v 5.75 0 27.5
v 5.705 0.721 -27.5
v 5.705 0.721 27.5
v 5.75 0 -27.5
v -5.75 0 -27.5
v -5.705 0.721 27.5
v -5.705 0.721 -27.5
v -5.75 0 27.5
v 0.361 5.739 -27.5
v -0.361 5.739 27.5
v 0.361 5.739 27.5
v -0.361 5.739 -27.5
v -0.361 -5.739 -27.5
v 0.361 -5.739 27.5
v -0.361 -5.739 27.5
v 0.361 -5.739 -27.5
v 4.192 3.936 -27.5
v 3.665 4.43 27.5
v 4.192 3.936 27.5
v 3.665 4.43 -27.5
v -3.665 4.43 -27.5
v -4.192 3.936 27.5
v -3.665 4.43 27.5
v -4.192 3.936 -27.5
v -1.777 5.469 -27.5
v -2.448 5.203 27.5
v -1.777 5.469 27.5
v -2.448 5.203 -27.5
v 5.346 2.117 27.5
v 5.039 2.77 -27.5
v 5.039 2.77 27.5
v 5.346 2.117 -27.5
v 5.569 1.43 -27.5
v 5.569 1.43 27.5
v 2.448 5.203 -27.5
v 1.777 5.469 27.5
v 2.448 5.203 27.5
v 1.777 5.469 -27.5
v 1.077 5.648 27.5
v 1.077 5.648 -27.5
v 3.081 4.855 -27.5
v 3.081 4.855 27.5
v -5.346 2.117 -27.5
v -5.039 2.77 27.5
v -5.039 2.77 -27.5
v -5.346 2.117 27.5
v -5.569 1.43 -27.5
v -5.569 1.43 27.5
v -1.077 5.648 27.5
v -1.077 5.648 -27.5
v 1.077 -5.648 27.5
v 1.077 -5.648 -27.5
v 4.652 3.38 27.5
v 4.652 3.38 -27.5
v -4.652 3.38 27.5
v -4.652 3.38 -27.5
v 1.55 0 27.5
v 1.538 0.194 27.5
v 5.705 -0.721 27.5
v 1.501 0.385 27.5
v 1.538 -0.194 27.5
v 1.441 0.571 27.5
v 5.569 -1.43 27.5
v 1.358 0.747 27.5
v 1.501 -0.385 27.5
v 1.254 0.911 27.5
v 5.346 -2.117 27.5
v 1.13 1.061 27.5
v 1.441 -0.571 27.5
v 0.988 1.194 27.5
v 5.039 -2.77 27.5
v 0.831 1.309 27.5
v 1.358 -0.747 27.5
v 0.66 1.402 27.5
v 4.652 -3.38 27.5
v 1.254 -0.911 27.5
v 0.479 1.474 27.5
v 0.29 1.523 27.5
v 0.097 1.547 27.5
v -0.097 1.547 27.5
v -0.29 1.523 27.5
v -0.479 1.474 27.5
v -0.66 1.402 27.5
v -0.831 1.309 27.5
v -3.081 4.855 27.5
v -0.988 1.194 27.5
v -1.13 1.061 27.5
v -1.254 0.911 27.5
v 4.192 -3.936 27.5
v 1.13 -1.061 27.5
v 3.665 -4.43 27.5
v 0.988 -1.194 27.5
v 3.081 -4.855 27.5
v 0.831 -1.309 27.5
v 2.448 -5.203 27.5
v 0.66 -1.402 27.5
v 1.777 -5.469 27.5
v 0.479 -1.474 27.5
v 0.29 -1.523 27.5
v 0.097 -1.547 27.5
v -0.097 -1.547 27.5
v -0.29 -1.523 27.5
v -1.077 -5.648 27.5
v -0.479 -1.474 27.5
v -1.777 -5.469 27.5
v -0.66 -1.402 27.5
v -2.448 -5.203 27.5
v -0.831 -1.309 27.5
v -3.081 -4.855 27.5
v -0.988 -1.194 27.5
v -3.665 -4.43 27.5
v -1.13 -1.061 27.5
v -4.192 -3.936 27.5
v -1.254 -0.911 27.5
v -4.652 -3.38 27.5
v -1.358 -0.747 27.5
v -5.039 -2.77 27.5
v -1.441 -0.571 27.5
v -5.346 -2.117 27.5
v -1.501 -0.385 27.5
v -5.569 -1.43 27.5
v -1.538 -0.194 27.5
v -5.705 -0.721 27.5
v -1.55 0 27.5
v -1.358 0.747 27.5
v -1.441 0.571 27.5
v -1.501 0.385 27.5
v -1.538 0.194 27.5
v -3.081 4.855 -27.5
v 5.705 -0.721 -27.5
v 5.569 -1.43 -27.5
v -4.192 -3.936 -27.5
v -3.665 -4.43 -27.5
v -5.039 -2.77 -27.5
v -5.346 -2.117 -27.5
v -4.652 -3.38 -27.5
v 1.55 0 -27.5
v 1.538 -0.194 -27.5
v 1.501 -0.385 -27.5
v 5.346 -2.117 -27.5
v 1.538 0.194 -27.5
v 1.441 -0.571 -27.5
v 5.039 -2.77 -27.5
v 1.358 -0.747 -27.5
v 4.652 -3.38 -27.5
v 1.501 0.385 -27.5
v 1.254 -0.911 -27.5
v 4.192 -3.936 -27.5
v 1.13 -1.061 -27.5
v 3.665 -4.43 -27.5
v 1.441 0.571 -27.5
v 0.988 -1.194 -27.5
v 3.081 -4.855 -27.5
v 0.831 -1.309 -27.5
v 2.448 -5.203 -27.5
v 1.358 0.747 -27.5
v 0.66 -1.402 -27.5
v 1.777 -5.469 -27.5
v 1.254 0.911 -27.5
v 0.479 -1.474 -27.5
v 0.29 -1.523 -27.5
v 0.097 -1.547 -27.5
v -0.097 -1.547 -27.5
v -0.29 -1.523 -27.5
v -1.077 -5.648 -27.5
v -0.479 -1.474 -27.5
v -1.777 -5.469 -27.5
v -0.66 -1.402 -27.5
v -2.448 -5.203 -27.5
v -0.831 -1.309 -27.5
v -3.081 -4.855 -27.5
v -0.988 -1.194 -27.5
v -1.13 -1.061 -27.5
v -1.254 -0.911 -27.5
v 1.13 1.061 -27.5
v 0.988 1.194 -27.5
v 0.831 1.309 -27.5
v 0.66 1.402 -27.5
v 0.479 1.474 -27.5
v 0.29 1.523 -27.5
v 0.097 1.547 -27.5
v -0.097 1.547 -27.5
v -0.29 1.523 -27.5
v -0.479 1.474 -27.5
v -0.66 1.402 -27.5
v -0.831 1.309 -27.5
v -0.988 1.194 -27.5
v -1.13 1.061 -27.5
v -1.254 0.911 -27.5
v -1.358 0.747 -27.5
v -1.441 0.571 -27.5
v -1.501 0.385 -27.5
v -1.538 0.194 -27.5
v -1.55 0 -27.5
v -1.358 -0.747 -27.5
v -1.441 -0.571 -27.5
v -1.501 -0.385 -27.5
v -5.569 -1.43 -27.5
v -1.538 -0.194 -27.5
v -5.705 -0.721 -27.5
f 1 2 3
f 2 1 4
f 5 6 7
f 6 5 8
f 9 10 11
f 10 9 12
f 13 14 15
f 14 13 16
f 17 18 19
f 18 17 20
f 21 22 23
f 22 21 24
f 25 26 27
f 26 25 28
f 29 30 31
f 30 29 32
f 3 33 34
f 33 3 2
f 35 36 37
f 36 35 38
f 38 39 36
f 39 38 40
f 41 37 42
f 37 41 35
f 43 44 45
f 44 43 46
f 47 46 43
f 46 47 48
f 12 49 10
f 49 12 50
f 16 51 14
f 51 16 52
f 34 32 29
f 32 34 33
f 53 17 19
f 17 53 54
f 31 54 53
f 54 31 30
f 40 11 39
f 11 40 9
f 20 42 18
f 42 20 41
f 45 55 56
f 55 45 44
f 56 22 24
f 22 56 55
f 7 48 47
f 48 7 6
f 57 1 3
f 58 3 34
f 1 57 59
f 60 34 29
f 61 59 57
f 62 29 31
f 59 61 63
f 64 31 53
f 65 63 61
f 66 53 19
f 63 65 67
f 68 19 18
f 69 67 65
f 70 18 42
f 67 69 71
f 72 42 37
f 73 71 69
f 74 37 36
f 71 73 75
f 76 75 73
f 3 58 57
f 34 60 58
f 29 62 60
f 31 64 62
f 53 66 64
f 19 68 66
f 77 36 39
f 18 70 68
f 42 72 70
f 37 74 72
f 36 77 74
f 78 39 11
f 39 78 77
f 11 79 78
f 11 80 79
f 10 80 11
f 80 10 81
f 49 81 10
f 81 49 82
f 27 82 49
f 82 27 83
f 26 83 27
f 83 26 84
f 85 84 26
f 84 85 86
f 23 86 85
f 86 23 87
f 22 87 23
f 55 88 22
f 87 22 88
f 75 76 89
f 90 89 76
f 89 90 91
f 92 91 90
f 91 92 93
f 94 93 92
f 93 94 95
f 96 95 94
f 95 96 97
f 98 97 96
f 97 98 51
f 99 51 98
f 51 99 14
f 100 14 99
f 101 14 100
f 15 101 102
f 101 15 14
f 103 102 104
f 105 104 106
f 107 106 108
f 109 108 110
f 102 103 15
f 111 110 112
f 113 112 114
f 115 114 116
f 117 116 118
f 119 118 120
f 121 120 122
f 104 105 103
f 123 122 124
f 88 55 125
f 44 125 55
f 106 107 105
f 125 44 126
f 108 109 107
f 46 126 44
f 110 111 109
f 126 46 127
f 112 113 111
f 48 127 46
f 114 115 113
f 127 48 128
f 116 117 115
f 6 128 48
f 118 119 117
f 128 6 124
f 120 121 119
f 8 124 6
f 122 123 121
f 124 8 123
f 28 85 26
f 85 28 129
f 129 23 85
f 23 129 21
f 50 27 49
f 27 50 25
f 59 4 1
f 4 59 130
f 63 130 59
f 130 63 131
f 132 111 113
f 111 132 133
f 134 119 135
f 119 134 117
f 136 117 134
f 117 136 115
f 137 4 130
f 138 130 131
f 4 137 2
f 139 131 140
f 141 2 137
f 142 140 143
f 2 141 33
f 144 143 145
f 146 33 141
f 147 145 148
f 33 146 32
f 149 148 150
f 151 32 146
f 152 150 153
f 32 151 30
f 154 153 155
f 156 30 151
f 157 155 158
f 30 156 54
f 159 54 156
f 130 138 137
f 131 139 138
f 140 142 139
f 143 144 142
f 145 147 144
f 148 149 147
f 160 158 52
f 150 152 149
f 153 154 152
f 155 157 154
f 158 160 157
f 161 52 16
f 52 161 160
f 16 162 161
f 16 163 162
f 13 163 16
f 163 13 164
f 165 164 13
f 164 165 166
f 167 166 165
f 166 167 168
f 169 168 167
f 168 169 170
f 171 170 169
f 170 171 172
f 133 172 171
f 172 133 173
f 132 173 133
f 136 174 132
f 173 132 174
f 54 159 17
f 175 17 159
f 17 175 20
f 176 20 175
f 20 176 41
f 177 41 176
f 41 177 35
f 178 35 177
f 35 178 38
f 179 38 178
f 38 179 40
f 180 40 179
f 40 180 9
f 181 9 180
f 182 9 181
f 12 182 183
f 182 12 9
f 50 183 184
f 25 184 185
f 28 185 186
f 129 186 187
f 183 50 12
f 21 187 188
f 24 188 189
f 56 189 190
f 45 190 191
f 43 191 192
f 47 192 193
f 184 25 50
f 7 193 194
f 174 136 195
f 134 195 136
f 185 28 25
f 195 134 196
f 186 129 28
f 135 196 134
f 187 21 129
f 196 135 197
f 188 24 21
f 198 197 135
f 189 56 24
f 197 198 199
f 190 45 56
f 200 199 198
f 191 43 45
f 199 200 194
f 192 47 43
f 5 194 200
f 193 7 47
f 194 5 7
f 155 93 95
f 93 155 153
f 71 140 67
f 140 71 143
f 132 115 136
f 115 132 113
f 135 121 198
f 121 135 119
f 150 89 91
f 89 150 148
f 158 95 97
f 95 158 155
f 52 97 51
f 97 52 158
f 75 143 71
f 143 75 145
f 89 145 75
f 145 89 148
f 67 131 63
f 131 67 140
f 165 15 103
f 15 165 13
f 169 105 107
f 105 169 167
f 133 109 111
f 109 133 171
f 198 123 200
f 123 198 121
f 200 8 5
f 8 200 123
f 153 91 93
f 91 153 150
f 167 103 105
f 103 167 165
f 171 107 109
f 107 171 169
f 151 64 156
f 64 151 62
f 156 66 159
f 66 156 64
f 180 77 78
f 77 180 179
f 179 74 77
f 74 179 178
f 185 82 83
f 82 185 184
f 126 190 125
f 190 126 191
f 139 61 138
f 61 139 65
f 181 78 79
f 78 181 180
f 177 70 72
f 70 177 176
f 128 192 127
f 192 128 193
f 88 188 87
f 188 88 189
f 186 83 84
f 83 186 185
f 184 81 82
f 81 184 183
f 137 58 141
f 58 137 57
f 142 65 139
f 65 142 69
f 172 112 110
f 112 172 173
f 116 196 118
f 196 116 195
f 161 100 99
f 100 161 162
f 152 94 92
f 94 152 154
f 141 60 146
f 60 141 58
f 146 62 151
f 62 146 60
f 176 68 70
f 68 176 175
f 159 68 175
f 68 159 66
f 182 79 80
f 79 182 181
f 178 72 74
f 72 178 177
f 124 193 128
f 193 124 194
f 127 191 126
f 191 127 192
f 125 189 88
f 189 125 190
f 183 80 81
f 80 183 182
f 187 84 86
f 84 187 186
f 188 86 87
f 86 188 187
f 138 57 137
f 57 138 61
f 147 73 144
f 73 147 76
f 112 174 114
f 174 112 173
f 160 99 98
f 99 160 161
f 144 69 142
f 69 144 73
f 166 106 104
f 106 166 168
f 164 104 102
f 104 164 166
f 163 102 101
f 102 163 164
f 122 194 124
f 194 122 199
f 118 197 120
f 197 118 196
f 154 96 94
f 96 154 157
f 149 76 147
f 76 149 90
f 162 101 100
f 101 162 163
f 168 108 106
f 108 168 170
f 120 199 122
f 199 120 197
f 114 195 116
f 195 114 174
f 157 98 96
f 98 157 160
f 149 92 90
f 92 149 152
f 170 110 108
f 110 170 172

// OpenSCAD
$fn = 50;


difference() {
	union() {
		translate(v = [0, 0, -27.5000000000]) {
			cylinder(h = 55, r = 5.7500000000);
		}
	}
	union() {
		translate(v = [0, 0, -100.0000000000]) {
			cylinder(h = 200, r = 1.5500000000);
		}
	}
}
